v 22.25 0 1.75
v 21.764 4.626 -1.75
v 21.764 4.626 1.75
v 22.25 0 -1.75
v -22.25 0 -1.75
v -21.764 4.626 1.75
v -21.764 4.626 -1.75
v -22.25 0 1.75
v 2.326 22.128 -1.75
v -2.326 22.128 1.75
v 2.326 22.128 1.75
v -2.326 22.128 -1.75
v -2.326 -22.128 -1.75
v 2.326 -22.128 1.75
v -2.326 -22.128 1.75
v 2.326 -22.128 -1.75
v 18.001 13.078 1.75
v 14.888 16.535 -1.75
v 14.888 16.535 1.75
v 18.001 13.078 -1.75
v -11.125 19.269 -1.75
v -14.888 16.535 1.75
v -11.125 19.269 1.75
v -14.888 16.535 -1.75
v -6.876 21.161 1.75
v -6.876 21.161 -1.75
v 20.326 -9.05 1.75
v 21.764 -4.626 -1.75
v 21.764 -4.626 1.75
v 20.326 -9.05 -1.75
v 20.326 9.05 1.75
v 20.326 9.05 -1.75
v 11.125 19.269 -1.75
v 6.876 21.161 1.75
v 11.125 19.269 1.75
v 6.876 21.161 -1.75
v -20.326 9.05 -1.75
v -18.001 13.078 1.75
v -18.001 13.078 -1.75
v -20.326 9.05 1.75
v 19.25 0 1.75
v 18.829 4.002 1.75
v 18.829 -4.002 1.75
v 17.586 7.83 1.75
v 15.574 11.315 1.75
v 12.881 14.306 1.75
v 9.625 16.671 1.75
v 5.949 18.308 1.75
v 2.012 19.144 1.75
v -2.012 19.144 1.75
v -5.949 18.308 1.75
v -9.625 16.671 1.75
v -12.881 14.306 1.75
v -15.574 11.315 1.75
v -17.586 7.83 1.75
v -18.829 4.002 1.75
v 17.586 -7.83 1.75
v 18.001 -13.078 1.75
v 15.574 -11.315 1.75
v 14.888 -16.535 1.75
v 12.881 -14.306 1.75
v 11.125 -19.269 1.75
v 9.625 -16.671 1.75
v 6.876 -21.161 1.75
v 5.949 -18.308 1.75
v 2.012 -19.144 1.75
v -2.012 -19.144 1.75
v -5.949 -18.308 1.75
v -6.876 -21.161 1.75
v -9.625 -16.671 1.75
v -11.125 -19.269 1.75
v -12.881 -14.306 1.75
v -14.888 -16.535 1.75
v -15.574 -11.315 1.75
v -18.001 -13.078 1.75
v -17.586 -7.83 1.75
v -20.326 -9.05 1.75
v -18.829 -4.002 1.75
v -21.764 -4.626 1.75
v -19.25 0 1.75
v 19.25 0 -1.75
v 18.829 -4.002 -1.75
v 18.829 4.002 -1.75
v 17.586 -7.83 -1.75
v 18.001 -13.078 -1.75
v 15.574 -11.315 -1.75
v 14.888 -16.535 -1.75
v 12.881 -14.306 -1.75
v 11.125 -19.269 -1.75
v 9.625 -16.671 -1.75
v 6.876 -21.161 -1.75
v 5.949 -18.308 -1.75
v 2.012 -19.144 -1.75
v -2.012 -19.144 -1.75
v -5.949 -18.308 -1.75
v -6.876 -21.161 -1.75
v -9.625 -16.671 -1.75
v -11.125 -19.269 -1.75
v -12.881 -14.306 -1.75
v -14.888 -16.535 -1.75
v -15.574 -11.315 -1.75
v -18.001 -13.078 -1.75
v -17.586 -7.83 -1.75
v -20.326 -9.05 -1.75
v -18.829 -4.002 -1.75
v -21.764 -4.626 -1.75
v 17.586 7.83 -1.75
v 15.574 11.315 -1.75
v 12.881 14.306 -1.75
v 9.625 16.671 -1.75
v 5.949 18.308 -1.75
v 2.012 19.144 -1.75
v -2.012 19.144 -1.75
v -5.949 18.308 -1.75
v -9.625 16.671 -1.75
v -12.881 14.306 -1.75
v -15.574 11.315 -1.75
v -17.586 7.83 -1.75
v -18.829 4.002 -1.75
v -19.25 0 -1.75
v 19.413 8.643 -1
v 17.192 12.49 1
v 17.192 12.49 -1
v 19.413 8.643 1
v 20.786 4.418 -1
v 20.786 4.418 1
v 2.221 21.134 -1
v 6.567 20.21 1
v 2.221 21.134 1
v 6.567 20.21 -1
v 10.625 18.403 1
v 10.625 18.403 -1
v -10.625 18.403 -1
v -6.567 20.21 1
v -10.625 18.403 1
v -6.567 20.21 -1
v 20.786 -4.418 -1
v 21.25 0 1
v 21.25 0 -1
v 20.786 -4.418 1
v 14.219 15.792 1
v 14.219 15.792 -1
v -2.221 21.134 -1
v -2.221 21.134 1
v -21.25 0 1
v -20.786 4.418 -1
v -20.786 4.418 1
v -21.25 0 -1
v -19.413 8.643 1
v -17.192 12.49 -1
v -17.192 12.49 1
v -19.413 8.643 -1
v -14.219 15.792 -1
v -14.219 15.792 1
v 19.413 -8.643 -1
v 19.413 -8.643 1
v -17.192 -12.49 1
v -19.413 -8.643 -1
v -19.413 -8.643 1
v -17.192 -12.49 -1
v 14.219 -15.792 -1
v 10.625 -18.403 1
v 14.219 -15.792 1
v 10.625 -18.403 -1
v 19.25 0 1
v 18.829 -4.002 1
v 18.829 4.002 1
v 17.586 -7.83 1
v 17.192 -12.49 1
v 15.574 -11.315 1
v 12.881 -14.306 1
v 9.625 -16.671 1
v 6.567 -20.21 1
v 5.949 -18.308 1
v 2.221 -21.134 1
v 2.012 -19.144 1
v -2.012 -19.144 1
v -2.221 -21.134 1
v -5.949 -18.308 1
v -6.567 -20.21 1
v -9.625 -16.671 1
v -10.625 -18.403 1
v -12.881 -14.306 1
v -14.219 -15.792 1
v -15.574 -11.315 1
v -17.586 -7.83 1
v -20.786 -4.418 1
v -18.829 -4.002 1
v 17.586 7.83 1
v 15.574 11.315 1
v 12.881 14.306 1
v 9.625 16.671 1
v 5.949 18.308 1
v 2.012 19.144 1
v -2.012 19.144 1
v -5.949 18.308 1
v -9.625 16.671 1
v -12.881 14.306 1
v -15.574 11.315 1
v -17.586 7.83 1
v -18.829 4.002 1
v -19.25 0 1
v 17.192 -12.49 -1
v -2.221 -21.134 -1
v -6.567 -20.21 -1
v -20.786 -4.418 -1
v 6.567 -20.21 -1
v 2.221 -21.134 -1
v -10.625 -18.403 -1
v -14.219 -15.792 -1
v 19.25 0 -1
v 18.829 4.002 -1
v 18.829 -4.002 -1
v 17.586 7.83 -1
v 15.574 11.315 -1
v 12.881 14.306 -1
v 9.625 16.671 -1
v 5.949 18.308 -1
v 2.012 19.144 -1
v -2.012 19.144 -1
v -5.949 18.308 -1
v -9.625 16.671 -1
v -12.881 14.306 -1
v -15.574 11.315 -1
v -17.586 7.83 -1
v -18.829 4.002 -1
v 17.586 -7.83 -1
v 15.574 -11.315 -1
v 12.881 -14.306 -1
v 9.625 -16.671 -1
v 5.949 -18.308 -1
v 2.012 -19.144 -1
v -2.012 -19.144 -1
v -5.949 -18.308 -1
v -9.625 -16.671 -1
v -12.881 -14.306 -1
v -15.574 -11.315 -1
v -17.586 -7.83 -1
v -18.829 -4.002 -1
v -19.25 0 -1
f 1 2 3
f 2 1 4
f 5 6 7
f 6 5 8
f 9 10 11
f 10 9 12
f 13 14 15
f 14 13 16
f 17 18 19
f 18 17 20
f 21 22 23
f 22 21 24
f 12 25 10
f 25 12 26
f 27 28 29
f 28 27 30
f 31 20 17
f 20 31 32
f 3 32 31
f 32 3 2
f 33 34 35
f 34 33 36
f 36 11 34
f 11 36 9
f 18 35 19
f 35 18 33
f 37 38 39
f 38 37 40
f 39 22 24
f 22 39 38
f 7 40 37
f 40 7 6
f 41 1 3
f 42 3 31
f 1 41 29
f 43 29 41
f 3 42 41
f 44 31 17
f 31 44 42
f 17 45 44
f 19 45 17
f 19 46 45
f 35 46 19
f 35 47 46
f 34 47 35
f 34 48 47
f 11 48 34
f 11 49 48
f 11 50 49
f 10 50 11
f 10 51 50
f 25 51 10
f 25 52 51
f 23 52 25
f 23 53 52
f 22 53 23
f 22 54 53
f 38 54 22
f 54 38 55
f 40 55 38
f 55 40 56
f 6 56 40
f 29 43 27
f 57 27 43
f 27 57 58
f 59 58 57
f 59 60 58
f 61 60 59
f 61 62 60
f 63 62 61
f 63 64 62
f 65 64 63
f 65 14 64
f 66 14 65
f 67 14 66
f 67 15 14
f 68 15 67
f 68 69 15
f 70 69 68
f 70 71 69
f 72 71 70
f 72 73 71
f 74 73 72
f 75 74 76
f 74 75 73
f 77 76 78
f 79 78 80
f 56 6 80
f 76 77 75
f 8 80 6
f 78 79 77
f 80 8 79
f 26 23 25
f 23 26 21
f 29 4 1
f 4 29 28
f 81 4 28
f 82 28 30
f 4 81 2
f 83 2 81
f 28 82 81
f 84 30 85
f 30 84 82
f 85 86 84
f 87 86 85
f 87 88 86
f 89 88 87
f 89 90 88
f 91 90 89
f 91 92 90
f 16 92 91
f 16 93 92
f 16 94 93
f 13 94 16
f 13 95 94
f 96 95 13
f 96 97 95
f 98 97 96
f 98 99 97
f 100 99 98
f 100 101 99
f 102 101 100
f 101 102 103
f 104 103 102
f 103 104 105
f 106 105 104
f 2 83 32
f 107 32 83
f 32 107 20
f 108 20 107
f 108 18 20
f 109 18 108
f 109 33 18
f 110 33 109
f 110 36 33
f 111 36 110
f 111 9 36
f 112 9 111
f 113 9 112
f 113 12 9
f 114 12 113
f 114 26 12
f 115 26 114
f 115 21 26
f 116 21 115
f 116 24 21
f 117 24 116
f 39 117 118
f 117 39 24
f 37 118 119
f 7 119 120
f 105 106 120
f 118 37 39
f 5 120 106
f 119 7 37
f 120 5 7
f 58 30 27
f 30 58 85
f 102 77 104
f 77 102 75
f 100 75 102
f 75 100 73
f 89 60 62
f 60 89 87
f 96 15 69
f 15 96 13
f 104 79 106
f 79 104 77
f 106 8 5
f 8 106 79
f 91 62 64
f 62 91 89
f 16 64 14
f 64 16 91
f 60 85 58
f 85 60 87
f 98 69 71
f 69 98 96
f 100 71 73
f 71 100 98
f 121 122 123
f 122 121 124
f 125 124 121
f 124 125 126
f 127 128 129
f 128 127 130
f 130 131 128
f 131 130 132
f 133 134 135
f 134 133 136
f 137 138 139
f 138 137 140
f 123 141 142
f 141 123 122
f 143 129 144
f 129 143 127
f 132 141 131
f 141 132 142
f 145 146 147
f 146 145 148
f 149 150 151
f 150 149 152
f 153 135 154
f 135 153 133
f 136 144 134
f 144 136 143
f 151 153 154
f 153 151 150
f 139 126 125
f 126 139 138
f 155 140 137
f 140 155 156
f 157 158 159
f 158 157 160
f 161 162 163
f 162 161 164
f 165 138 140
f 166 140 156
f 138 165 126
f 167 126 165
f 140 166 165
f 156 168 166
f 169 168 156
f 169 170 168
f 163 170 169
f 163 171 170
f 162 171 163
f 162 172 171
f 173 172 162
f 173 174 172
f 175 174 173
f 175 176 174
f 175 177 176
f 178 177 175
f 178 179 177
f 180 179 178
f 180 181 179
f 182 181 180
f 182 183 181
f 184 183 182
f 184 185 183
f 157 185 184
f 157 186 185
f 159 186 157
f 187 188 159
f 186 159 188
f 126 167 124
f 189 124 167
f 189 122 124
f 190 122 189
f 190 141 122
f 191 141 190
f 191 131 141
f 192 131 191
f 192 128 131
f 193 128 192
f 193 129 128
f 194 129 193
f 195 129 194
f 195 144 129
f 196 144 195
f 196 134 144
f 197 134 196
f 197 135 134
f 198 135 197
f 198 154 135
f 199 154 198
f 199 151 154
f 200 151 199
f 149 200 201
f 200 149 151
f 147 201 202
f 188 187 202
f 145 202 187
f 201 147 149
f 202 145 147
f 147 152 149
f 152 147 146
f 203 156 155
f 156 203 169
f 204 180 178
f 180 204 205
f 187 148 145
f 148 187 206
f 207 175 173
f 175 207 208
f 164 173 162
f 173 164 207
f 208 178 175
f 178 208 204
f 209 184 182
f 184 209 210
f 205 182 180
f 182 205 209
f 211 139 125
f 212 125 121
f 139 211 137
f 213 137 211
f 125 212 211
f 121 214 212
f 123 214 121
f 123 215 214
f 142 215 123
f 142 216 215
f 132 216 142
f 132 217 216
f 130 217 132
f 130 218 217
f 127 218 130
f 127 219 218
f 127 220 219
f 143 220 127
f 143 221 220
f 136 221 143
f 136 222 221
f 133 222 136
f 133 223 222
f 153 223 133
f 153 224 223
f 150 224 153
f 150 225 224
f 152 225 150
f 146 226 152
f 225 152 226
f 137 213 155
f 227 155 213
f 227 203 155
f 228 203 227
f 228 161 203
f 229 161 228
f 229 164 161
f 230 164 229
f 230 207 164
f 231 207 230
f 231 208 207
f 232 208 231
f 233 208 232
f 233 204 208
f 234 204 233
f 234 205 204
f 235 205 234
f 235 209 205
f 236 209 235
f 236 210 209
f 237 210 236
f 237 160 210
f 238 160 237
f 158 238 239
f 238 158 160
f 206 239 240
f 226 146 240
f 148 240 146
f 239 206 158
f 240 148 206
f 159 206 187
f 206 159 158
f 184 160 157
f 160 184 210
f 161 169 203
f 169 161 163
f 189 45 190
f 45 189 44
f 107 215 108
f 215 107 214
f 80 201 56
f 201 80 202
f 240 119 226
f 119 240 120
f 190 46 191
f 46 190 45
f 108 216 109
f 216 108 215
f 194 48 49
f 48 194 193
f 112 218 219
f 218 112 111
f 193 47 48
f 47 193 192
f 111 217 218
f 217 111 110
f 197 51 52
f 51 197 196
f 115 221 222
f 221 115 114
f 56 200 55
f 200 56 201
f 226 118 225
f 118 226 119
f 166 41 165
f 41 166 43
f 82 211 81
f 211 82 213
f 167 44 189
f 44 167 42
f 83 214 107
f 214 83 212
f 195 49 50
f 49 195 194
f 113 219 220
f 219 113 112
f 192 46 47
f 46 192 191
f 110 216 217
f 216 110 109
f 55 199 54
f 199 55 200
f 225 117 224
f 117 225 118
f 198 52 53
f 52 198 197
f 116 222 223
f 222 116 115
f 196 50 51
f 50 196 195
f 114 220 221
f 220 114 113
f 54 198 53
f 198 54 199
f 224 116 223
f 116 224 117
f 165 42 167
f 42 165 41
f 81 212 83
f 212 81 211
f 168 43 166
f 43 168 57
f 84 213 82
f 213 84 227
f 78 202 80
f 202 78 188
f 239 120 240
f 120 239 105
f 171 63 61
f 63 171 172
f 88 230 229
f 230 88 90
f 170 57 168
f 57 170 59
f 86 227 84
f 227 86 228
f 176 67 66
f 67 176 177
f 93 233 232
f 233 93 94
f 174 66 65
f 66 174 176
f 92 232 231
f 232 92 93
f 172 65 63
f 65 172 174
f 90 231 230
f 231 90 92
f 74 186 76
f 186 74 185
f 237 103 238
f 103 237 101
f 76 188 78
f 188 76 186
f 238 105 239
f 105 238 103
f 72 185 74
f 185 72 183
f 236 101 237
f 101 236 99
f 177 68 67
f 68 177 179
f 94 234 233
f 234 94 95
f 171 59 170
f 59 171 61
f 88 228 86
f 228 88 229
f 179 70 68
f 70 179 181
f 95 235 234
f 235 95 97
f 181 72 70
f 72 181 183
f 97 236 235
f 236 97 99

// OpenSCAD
difference() {
    cylinder(d=44.5, h=3.5, center=true);
    cylinder(d=42.5, h=2, center=true);
    cylinder(d=38.5, h=4, center=true);
}
